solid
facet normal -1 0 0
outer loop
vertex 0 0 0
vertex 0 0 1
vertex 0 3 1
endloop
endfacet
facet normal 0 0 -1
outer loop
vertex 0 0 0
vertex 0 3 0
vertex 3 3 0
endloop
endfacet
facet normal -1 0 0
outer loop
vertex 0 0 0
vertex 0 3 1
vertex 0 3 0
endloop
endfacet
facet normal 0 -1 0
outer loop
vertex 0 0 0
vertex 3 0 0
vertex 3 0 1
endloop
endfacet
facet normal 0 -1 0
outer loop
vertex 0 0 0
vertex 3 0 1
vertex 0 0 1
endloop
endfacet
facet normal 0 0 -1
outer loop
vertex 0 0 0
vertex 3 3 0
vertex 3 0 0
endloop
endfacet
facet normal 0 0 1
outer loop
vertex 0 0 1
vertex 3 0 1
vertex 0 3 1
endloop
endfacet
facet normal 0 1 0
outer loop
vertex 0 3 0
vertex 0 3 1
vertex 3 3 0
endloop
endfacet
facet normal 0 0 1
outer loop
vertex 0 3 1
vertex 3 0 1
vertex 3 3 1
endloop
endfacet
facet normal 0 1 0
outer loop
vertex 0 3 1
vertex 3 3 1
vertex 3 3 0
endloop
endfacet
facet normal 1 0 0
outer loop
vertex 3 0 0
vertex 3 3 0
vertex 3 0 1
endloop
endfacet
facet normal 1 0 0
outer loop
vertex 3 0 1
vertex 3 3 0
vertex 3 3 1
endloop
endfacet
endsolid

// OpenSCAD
/* Warning, this is a very basic generator with a lot of approximation 
input data : [DFN, CJX, 3x3mm, 8, , C, C04-00062C]
generated by com.zoubworld.electronics.cad.model3d.Basic
Date : Sun Feb 15 10:50:48 CET 2026
*/

//body
color("black")
translate([0,0,0])
cube([3.0,3.0,1.0], center=false);
